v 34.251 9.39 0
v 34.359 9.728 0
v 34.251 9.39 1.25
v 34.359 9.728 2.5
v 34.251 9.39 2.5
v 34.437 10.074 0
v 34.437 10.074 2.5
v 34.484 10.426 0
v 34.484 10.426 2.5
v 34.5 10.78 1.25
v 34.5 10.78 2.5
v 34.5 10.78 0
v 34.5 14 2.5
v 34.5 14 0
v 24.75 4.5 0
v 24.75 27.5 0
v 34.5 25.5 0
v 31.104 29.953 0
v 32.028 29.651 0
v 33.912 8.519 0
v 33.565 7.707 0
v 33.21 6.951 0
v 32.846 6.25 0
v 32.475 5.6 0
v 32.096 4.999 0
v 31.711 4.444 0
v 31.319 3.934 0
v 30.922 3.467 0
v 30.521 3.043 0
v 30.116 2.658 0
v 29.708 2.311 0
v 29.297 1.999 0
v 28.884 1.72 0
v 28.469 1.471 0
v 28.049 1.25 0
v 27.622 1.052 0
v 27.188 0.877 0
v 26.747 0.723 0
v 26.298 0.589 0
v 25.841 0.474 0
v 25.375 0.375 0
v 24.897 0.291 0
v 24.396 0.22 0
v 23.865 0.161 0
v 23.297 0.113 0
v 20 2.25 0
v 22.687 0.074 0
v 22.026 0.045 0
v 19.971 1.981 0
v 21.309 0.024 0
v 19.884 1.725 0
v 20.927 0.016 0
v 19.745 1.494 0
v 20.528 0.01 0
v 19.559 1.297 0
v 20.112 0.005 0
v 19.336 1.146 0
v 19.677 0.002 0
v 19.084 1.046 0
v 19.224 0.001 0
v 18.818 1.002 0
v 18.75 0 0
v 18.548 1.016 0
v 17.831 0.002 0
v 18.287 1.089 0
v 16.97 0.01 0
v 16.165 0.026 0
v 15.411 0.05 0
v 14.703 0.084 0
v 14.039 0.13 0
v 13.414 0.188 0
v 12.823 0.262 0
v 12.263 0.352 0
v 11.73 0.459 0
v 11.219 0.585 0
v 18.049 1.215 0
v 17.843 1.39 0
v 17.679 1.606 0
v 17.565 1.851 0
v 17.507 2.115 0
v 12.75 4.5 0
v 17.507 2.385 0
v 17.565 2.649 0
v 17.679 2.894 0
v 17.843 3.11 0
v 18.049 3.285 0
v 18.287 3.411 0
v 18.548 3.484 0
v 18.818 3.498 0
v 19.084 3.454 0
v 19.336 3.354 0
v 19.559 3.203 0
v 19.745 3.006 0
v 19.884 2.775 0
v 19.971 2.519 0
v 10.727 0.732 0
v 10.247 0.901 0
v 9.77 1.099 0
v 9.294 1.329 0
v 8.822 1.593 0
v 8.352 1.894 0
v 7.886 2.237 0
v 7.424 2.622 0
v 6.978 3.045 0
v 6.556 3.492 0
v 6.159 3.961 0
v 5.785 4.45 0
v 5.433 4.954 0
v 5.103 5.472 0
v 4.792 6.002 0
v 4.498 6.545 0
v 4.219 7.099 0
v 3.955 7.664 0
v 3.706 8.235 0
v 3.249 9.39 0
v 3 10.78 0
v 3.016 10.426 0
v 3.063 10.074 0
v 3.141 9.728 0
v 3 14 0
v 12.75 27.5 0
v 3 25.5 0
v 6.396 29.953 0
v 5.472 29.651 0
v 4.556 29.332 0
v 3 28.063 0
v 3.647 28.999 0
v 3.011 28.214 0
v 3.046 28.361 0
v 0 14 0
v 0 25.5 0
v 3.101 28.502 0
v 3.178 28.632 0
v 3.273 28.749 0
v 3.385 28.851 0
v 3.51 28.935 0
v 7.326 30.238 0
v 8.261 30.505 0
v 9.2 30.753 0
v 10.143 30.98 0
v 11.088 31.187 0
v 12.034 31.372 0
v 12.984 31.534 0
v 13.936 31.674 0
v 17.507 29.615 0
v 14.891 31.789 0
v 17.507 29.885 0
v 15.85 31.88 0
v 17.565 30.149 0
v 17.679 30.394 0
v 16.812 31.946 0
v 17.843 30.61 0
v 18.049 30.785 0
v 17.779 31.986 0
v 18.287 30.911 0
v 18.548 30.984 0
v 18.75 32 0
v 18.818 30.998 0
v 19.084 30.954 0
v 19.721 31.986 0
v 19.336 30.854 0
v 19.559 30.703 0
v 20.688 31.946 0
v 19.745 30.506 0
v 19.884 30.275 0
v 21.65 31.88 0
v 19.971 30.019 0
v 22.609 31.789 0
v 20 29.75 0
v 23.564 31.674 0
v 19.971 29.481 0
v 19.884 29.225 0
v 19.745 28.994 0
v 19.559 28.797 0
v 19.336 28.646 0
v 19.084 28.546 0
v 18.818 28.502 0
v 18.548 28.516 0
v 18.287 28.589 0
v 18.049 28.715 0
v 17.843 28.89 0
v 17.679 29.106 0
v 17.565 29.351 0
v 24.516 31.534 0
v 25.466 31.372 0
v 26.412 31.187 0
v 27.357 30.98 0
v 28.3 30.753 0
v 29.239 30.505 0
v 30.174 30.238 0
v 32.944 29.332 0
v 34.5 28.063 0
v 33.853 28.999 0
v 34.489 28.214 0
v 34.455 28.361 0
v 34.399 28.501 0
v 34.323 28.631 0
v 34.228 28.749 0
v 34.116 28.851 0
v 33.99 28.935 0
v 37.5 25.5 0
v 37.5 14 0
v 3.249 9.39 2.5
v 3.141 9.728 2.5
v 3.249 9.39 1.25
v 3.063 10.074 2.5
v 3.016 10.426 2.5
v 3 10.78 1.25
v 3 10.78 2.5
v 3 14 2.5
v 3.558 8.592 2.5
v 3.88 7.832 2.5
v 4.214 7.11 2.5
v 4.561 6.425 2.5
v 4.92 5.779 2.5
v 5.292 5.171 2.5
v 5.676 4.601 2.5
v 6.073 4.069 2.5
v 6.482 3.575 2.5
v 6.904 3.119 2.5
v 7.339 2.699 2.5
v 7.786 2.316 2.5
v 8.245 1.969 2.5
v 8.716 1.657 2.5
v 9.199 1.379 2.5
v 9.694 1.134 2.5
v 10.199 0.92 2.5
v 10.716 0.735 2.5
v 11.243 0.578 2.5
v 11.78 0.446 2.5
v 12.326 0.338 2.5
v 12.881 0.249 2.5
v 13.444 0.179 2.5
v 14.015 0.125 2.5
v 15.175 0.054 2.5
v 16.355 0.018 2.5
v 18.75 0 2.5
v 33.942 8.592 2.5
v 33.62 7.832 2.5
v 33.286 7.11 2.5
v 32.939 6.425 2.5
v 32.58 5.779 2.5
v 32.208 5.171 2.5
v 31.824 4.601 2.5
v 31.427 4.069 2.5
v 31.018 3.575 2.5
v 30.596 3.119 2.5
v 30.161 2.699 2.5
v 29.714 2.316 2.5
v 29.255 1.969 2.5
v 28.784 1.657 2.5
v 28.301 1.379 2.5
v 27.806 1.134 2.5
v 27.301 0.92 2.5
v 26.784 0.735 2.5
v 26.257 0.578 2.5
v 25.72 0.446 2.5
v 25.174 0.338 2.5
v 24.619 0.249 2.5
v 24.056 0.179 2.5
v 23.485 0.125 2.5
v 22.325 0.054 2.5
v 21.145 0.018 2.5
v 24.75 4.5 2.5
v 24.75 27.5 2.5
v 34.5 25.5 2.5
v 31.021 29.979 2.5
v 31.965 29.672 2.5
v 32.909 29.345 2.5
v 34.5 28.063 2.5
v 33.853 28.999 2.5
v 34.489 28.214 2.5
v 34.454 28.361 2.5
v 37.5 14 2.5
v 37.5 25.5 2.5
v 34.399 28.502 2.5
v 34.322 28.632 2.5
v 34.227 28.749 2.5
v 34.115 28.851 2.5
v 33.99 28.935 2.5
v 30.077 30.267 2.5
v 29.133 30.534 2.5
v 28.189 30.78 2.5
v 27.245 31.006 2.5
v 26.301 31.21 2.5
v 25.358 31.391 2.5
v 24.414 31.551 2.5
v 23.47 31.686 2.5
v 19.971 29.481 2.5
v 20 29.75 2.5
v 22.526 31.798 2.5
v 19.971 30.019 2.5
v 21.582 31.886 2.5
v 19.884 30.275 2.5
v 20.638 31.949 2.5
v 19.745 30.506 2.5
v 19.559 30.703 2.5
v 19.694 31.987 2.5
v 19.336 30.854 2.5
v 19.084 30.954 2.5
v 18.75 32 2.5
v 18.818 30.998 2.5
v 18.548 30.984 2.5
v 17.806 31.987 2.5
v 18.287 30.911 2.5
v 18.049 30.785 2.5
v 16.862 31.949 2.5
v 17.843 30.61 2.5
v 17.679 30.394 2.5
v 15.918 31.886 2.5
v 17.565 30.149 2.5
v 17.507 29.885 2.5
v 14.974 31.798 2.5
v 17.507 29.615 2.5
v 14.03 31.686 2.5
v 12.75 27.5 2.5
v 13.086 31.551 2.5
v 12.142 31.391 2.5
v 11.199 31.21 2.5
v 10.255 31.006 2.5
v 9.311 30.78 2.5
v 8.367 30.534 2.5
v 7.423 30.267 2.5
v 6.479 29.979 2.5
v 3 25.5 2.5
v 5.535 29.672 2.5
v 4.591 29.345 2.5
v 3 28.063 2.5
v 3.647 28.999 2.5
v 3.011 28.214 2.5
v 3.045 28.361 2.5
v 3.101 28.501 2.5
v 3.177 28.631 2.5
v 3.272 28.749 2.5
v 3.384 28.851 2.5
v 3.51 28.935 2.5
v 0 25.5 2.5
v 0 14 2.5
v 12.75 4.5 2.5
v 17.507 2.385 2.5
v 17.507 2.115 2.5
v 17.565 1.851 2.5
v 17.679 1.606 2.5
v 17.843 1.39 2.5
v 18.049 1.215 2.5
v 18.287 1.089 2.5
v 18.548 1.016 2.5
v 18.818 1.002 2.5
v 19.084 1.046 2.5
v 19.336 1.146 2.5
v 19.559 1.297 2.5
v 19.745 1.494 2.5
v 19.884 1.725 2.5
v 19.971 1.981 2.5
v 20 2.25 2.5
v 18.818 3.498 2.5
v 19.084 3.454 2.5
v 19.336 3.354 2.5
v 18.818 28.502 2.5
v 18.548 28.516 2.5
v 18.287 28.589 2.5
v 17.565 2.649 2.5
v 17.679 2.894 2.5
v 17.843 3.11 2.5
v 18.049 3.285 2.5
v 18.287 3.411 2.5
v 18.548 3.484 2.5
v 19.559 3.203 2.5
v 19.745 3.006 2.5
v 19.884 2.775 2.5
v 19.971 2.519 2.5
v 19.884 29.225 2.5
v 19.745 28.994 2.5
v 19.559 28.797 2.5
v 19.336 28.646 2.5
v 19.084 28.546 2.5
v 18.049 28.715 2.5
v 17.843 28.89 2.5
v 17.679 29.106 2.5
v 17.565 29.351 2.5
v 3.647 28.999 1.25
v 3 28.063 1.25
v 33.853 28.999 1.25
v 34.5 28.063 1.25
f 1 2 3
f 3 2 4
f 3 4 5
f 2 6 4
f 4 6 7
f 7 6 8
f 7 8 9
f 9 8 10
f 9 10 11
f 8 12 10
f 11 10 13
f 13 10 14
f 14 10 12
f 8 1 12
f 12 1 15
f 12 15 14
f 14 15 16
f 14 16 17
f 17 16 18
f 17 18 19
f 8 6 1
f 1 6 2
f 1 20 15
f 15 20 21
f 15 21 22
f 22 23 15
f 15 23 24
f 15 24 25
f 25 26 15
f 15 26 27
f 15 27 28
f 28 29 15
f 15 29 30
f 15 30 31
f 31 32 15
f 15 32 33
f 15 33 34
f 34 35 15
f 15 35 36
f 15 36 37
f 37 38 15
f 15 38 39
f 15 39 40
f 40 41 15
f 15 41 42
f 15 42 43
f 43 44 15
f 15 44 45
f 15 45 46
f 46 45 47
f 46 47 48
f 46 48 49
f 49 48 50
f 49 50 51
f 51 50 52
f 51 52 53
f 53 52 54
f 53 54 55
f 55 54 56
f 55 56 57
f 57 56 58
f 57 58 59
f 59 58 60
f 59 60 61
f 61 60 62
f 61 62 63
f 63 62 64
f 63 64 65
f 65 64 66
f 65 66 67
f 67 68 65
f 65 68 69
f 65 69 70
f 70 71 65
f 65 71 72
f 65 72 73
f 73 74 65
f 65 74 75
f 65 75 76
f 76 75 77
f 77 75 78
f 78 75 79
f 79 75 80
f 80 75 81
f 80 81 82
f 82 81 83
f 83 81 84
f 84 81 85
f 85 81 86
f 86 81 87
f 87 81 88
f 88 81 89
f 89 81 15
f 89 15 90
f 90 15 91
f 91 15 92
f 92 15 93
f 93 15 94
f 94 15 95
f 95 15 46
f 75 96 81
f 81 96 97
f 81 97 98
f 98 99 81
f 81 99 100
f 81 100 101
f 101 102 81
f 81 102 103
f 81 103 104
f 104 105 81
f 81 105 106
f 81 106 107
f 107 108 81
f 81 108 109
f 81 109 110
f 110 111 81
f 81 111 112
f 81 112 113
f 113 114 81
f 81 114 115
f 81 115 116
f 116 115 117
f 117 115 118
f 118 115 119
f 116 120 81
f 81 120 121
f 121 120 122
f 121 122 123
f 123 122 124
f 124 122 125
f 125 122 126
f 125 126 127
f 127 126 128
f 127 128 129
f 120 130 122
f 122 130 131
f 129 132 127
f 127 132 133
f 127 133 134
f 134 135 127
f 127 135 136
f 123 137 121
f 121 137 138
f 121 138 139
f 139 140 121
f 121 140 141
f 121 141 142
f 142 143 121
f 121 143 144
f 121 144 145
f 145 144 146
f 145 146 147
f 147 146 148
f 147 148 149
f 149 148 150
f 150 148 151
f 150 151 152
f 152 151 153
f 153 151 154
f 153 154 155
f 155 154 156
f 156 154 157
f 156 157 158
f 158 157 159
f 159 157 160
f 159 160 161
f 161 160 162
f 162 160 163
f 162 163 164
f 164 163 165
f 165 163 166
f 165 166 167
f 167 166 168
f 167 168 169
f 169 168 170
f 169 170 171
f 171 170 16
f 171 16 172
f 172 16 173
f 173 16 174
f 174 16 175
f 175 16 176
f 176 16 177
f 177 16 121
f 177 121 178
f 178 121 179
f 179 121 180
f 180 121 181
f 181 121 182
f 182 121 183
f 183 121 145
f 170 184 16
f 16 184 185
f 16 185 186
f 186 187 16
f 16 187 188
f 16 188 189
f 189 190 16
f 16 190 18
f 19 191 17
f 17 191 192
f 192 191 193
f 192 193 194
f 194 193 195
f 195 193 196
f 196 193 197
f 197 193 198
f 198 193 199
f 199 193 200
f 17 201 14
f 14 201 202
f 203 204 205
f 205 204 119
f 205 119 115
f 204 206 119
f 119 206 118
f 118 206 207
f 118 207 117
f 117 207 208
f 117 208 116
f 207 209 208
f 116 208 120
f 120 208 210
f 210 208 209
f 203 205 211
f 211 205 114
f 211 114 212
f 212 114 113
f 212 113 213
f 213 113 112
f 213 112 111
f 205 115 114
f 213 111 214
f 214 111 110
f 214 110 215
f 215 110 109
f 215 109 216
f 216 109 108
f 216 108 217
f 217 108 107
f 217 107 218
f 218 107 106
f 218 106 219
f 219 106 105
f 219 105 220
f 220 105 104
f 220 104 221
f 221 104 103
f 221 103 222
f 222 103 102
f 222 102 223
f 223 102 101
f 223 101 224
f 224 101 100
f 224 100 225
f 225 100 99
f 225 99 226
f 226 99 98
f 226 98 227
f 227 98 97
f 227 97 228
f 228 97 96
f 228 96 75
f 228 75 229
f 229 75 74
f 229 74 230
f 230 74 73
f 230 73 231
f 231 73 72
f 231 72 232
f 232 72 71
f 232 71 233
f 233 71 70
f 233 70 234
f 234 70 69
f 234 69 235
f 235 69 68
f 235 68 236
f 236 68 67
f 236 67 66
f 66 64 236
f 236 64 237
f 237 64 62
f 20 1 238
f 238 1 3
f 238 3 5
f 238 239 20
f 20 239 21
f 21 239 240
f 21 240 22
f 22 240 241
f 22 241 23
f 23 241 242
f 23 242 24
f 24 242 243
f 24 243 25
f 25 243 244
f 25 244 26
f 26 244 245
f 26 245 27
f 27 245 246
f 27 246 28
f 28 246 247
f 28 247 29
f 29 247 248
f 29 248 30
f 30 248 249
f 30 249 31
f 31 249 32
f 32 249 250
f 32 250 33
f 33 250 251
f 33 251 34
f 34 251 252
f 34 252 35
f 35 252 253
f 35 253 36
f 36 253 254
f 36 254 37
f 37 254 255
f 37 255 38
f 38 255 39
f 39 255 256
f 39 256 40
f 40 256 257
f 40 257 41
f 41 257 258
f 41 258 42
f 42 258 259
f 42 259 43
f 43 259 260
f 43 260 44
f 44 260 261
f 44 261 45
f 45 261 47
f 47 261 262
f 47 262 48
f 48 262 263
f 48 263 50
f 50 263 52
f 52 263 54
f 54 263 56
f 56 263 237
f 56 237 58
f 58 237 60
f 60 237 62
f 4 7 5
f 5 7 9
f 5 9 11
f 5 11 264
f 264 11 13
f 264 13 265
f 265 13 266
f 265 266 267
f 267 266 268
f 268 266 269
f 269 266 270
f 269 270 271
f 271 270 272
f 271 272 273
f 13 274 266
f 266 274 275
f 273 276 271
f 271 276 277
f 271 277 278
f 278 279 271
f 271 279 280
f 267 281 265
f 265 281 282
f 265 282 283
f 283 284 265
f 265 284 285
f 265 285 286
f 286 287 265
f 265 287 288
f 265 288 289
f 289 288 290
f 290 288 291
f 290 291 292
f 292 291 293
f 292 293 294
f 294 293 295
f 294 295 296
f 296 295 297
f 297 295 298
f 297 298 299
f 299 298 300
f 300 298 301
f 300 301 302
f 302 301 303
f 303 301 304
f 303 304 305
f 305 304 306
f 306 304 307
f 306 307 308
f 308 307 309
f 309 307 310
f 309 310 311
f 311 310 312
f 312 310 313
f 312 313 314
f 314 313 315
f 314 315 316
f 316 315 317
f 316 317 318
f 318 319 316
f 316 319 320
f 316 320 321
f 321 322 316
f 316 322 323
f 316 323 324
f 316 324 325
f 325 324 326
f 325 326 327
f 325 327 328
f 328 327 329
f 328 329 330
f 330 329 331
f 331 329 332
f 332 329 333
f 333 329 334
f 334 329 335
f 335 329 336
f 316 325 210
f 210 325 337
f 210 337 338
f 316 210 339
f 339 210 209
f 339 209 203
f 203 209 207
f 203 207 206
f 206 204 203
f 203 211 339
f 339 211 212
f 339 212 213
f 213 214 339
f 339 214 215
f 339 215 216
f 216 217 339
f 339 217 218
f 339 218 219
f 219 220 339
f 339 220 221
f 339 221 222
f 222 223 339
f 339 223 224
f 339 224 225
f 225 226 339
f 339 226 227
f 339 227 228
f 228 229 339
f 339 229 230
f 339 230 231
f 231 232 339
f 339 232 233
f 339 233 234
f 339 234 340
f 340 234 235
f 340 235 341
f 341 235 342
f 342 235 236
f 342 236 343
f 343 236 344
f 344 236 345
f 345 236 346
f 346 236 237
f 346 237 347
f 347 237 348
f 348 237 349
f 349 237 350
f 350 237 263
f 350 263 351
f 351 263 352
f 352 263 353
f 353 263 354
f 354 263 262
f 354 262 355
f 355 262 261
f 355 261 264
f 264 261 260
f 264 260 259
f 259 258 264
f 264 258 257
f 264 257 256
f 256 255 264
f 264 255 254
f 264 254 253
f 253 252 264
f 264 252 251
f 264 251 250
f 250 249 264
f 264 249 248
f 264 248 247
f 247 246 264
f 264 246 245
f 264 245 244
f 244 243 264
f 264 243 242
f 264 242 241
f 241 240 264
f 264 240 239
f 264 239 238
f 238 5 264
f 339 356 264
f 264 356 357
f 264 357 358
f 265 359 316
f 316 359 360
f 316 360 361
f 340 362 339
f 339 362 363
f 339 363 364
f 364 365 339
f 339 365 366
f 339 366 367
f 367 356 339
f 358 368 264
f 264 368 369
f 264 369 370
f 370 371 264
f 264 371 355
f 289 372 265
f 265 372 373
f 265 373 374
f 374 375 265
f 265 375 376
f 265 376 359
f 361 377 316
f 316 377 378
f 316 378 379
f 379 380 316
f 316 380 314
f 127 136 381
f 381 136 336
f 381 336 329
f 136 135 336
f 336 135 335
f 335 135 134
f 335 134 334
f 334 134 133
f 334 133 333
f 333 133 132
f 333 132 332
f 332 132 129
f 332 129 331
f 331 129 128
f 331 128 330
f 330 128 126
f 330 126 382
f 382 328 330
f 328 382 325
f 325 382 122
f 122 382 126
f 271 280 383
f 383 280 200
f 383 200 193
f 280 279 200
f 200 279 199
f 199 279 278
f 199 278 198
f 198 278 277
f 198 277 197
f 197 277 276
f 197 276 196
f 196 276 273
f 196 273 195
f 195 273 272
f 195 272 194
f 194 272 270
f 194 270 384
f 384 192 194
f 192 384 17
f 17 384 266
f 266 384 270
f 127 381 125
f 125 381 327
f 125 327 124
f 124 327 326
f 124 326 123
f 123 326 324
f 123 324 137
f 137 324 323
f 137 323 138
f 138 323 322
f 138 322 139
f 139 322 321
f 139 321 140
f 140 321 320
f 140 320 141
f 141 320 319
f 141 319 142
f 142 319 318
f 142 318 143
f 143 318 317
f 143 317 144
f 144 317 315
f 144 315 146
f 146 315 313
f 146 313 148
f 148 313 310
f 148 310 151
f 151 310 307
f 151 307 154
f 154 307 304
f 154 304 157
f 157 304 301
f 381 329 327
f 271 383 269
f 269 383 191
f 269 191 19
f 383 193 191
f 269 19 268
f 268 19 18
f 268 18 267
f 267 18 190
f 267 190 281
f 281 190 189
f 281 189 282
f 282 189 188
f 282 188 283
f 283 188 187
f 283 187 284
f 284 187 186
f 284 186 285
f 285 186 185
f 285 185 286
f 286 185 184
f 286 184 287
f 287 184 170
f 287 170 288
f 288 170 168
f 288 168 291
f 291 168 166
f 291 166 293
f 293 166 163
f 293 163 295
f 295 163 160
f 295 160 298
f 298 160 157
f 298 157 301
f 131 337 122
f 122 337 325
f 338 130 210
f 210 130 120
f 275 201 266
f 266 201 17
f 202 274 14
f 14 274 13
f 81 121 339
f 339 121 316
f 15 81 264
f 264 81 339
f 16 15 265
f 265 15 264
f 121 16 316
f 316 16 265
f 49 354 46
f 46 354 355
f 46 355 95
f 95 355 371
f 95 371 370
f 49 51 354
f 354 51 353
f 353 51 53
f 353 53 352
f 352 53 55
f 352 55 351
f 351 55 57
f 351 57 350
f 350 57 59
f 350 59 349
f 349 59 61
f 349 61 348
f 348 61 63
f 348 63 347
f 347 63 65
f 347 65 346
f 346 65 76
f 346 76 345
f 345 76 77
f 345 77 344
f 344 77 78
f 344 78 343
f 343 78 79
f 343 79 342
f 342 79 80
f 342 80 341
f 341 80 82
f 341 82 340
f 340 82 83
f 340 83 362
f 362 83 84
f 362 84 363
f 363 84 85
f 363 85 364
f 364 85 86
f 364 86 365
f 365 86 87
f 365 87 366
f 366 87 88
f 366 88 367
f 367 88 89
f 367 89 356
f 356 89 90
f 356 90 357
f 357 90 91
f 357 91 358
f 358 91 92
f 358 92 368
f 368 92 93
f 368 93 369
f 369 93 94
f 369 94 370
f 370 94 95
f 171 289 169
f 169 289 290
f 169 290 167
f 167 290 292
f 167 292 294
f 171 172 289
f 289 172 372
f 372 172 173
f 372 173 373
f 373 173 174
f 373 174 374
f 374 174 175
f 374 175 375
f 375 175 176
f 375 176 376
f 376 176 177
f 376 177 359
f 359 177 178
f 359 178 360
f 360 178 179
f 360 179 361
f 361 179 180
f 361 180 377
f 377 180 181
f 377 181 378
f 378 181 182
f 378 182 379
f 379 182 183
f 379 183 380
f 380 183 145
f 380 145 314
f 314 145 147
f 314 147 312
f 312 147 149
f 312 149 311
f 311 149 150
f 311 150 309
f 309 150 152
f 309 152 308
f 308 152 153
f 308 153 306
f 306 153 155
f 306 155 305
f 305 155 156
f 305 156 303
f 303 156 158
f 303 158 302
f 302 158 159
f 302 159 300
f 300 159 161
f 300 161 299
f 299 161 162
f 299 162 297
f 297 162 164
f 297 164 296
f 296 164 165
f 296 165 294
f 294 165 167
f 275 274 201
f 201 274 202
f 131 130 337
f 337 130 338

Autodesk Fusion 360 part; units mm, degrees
sketch "Sketch1" plane through (0, 0, 0) normal (0, 0, 1) x (1, 0, 0)
  line L0 (0, 0) -> (37.5, 0)
  line L1 (37.5, 0) -> (37.5, 32)
  line L2 (37.5, 32) -> (0, 32)
  line L3 (0, 32) -> (0, 0)
  dimension "d1" = 37.5
  dimension "d2" = 32
extrude "Extrude1" add sketch "Sketch1" along normal blind 2.5
sketch "Sketch2" plane through (0, 0, 2.5) normal (0, 0, 1) x (-1, 0, 0)
  line L0 (0, -32) -> (0, 0)
  line L1 (0, 0) -> (-37.5, 0)
  line L2 (-37.5, 0) -> (-37.5, -32)
  line L3 (-37.5, -32) -> (0, -32)
  circle A0 centre (-18.75, -29.75) radius 1.25
  dimension "d5" = 2.5
  dimension "d6" = 18.75
  dimension "d7" = 2.25
extrude "Extrude2" cut sketch "Sketch2" against normal blind 3 contours A0
sketch "Sketch3" plane through (0, 0, 2.5) normal (0, 0, 1) x (-1, 0, 0)
  circle A0 centre (-18.75, -29.75) radius 1.25
  line L0 (0, -32) -> (0, 0)
  line L1 (0, 0) -> (-37.5, 0)
  line L2 (-37.5, 0) -> (-37.5, -32)
  line L3 (-37.5, -32) -> (0, -32)
  circle A1 centre (-18.75, -2.25) radius 1.25
  dimension "d10" = 2.5
  dimension "d11" = 27.5
  dimension "d12" = 18.75
extrude "Extrude3" cut sketch "Sketch3" against normal blind 3 contours A1
sketch "Sketch4" plane through (0, 0, 2.5) normal (0, 0, 1) x (-1, 0, 0)
  circle A0 centre (-18.75, -2.25) radius 1.25
  circle A1 centre (-18.75, -29.75) radius 1.25
  line L0 (0, -32) -> (0, 0)
  line L1 (0, 0) -> (-37.5, 0)
  line L2 (-37.5, 0) -> (-37.5, -32)
  line L3 (-37.5, -32) -> (0, -32)
  line L4 (-12.75, -27.5) -> (-24.75, -27.5)
  line L5 (-24.75, -27.5) -> (-24.75, -4.5)
  line L6 (-24.75, -4.5) -> (-12.75, -4.5)
  line L7 (-12.75, -4.5) -> (-12.75, -27.5)
  dimension "d15" = 23
  dimension "d16" = 12
  dimension "d17" = 6
  dimension "d18" = 2.25
extrude "Extrude4" cut sketch "Sketch4" against normal blind 3 contours L4 L5 L6 L7
sketch "Sketch5" plane through (37.5, 0, 0) normal (1, 0, 0) x (0, 1, 0)
  line L0 (0, 0) -> (32, 0)
  line L1 (32, 0) -> (32, 2.5)
  line L2 (32, 2.5) -> (0, 2.5)
  line L3 (0, 2.5) -> (0, 0)
  line L4 (25.5, 2.5) -> (14, 2.5)
  line L5 (14, 2.5) -> (14, 0)
  line L6 (14, 0) -> (25.5, 0)
  line L7 (25.5, 0) -> (25.5, 2.5)
  point P0 (27.5, 2.5)
  dimension "d21" = 11.5
  dimension "d22" = 2
extrude "Extrude5" cut sketch "Sketch5" against normal blind 3 contours L0 L2 L3 L5 | L0 L1 L2 L7
sketch "Sketch6" plane through (0, 0, 0) normal (-1, 0, 0) x (0, -1, 0)
  line L0 (-32, 0) -> (0, 0)
  line L1 (0, 0) -> (0, 2.5)
  line L2 (0, 2.5) -> (-32, 2.5)
  line L3 (-32, 2.5) -> (-32, 0)
  line L4 (-25.5, 2.5) -> (-14, 2.5)
  line L5 (-14, 2.5) -> (-14, 0)
  line L6 (-14, 0) -> (-25.5, 0)
  line L7 (-25.5, 0) -> (-25.5, 2.5)
  point P0 (-27.5, 2.5)
  dimension "d25" = 11.5
  dimension "d26" = 2
extrude "Extrude6" cut sketch "Sketch6" against normal blind 3 contours L0 L2 L3 L7 | L0 L1 L2 L5
sketch "Sketch7" plane through (0, 0, 2.5) normal (0, 0, 1) x (-1, 0, 0)
  line L0 (-3, -25.5) -> (0, -25.5)
  line L1 (0, -25.5) -> (0, -14)
  line L2 (0, -14) -> (-3, -14)
  line L3 (-3, -14) -> (-3, 0)
  line L4 (-3, 0) -> (-34.5, 0)
  line L5 (-34.5, 0) -> (-34.5, -14)
  line L6 (-34.5, -14) -> (-37.5, -14)
  line L7 (-37.5, -14) -> (-37.5, -25.5)
  line L8 (-37.5, -25.5) -> (-34.5, -25.5)
  line L9 (-34.5, -25.5) -> (-34.5, -32)
  line L10 (-34.5, -32) -> (-3, -32)
  line L11 (-3, -32) -> (-3, -25.5)
  circle A0 centre (-18.75, -29.75) radius 1.25
  circle A1 centre (-18.75, -2.25) radius 1.25
  line L12 (-24.75, -27.5) -> (-24.75, -4.5)
  line L13 (-24.75, -4.5) -> (-12.75, -4.5)
  line L14 (-12.75, -4.5) -> (-12.75, -27.5)
  line L15 (-12.75, -27.5) -> (-24.75, -27.5)
  spline S0 degree 5 poles (-3, -28.75) (-3.63, -28.9965) (-4.89, -29.468) (-6.78, -30.1106) (-9.3, -30.8362) (-12.45, -31.5094) (-15.6, -31.9281) (-18.75, -32.0715) (-21.9, -31.9281) (-25.05, -31.5094) (-28.2, -30.8362) (-30.72, -30.1106) (-32.61, -29.468) (-33.87, -28.9965) (-34.5, -28.75) knots 0 0 0 0 0 0 0.1 0.2 0.3 0.4 0.5 0.6 0.7 0.8 0.9 1 1 1 1 1 1
  point P0 (-18.75, -32)
extrude "Extrude7" cut sketch "Sketch7" against normal blind 3 contours L10 L11 S0 | L9 L10 S0
fillet "Fillet1" radius 1 1 edges at (34.5, 28.75, 1.25)
fillet "Fillet2" radius 1 1 edges at (3, 28.75, 1.25)
sketch "Sketch8" plane through (0, 0, 2.5) normal (0, 0, 1) x (-1, 0, 0)
  spline S0 degree 3 poles (-3, -28.063) (-3, -28.1932) (-3.0254, -28.3222) (-3.1243, -28.5631) (-3.1968, -28.6728) (-3.3388, -28.8166) (-3.3947, -28.8622) (-3.5154, -28.9407) (-3.5797, -28.9732) (-3.647, -28.9986) knots 0 0 0 0 0.039064 0.039064 0.078129 0.078129 0.099711 0.099711 0.121294 0.121294 0.121294 0.121294
  line L0 (-3, -28.063) -> (-3, -25.5)
  line L1 (-3, -25.5) -> (0, -25.5)
  line L2 (0, -25.5) -> (0, -14)
  line L3 (0, -14) -> (-3, -14)
  line L4 (-3, -14) -> (-3, 0)
  line L5 (-3, 0) -> (-34.5, 0)
  line L6 (-34.5, 0) -> (-34.5, -14)
  line L7 (-34.5, -14) -> (-37.5, -14)
  line L8 (-37.5, -14) -> (-37.5, -25.5)
  line L9 (-37.5, -25.5) -> (-34.5, -25.5)
  line L10 (-34.5, -25.5) -> (-34.5, -28.063)
  spline S1 degree 3 poles (-33.853, -28.9986) (-33.9748, -28.9527) (-34.0865, -28.8834) (-34.277, -28.7058) (-34.354, -28.5993) (-34.4385, -28.4156) (-34.4615, -28.3472) (-34.4922, -28.2067) (-34.5, -28.1349) (-34.5, -28.063) knots 0 0 0 0 0.039064 0.039064 0.078129 0.078129 0.099711 0.099711 0.121294 0.121294 0.121294 0.121294
  spline S2 degree 5 poles (-33.853, -28.9986) (-33.3524, -29.1875) (-32.2218, -29.5986) (-30.4612, -30.1847) (-28.0706, -30.8638) (-25.05, -31.5094) (-22.53, -31.8444) (-20.64, -31.9717) (-19.38, -32) (-18.75, -32) knots -0.979459 -0.979459 -0.979459 -0.979459 -0.979459 -0.979459 -0.9 -0.8 -0.7 -0.6 -0.5 -0.5 -0.5 -0.5 -0.5 -0.5
  spline S3 degree 5 poles (-18.75, -32) (-18.12, -32) (-16.86, -31.9717) (-14.97, -31.8444) (-12.45, -31.5094) (-9.4294, -30.8638) (-7.0388, -30.1847) (-5.2782, -29.5986) (-4.1476, -29.1875) (-3.647, -28.9986) knots -0.5 -0.5 -0.5 -0.5 -0.5 -0.5 -0.4 -0.3 -0.2 -0.1 -0.020541 -0.020541 -0.020541 -0.020541 -0.020541 -0.020541
  circle A0 centre (-18.75, -29.75) radius 1.25
  circle A1 centre (-18.75, -2.25) radius 1.25
  line L11 (-24.75, -27.5) -> (-24.75, -4.5)
  line L12 (-24.75, -4.5) -> (-12.75, -4.5)
  line L13 (-12.75, -4.5) -> (-12.75, -27.5)
  line L14 (-12.75, -27.5) -> (-24.75, -27.5)
  spline S4 degree 5 poles (-3, -10.0882) (-3.192, -9.5306) (-3.5896, -8.4564) (-4.2262, -6.9676) (-5.156, -5.2287) (-6.4542, -3.4672) (-7.8881, -2.1125) (-9.4541, -1.1457) (-11.1442, -0.5279) (-12.9429, -0.19) (-14.8281, -0.0435) (-16.7736, -0.0017) (-18.75, 0.0027) (-20.7264, -0.0017) (-22.6719, -0.0435) (-24.5571, -0.19) (-26.3558, -0.5279) (-28.0459, -1.1457) (-29.6119, -2.1125) (-31.0458, -3.4672) (-32.344, -5.2287) (-33.2738, -6.9676) (-33.9104, -8.4564) (-34.308, -9.5306) (-34.5, -10.0882) knots 0 0 0 0 0 0 0.05 0.1 0.15 0.2 0.25 0.3 0.35 0.4 0.45 0.5 0.55 0.6 0.65 0.7 0.75 0.8 0.85 0.9 0.95 1 1 1 1 1 1
  point P0 (-10, -1)
  point P1 (-18.75, 0)
  point P2 (-27.5, -1)
  dimension "d35" = 8.75
  dimension "d36" = 8.75
  dimension "d37" = 1
  dimension "d38" = 1
extrude "Extrude8" cut sketch "Sketch8" against normal blind 3 contours L4 L5 S4 | L5 L6 S4
fillet "Fillet3" radius 4 1 edges at (3, 10.0882, 1.25)
fillet "Fillet4" radius 4 1 edges at (34.5, 10.0882, 1.25)
